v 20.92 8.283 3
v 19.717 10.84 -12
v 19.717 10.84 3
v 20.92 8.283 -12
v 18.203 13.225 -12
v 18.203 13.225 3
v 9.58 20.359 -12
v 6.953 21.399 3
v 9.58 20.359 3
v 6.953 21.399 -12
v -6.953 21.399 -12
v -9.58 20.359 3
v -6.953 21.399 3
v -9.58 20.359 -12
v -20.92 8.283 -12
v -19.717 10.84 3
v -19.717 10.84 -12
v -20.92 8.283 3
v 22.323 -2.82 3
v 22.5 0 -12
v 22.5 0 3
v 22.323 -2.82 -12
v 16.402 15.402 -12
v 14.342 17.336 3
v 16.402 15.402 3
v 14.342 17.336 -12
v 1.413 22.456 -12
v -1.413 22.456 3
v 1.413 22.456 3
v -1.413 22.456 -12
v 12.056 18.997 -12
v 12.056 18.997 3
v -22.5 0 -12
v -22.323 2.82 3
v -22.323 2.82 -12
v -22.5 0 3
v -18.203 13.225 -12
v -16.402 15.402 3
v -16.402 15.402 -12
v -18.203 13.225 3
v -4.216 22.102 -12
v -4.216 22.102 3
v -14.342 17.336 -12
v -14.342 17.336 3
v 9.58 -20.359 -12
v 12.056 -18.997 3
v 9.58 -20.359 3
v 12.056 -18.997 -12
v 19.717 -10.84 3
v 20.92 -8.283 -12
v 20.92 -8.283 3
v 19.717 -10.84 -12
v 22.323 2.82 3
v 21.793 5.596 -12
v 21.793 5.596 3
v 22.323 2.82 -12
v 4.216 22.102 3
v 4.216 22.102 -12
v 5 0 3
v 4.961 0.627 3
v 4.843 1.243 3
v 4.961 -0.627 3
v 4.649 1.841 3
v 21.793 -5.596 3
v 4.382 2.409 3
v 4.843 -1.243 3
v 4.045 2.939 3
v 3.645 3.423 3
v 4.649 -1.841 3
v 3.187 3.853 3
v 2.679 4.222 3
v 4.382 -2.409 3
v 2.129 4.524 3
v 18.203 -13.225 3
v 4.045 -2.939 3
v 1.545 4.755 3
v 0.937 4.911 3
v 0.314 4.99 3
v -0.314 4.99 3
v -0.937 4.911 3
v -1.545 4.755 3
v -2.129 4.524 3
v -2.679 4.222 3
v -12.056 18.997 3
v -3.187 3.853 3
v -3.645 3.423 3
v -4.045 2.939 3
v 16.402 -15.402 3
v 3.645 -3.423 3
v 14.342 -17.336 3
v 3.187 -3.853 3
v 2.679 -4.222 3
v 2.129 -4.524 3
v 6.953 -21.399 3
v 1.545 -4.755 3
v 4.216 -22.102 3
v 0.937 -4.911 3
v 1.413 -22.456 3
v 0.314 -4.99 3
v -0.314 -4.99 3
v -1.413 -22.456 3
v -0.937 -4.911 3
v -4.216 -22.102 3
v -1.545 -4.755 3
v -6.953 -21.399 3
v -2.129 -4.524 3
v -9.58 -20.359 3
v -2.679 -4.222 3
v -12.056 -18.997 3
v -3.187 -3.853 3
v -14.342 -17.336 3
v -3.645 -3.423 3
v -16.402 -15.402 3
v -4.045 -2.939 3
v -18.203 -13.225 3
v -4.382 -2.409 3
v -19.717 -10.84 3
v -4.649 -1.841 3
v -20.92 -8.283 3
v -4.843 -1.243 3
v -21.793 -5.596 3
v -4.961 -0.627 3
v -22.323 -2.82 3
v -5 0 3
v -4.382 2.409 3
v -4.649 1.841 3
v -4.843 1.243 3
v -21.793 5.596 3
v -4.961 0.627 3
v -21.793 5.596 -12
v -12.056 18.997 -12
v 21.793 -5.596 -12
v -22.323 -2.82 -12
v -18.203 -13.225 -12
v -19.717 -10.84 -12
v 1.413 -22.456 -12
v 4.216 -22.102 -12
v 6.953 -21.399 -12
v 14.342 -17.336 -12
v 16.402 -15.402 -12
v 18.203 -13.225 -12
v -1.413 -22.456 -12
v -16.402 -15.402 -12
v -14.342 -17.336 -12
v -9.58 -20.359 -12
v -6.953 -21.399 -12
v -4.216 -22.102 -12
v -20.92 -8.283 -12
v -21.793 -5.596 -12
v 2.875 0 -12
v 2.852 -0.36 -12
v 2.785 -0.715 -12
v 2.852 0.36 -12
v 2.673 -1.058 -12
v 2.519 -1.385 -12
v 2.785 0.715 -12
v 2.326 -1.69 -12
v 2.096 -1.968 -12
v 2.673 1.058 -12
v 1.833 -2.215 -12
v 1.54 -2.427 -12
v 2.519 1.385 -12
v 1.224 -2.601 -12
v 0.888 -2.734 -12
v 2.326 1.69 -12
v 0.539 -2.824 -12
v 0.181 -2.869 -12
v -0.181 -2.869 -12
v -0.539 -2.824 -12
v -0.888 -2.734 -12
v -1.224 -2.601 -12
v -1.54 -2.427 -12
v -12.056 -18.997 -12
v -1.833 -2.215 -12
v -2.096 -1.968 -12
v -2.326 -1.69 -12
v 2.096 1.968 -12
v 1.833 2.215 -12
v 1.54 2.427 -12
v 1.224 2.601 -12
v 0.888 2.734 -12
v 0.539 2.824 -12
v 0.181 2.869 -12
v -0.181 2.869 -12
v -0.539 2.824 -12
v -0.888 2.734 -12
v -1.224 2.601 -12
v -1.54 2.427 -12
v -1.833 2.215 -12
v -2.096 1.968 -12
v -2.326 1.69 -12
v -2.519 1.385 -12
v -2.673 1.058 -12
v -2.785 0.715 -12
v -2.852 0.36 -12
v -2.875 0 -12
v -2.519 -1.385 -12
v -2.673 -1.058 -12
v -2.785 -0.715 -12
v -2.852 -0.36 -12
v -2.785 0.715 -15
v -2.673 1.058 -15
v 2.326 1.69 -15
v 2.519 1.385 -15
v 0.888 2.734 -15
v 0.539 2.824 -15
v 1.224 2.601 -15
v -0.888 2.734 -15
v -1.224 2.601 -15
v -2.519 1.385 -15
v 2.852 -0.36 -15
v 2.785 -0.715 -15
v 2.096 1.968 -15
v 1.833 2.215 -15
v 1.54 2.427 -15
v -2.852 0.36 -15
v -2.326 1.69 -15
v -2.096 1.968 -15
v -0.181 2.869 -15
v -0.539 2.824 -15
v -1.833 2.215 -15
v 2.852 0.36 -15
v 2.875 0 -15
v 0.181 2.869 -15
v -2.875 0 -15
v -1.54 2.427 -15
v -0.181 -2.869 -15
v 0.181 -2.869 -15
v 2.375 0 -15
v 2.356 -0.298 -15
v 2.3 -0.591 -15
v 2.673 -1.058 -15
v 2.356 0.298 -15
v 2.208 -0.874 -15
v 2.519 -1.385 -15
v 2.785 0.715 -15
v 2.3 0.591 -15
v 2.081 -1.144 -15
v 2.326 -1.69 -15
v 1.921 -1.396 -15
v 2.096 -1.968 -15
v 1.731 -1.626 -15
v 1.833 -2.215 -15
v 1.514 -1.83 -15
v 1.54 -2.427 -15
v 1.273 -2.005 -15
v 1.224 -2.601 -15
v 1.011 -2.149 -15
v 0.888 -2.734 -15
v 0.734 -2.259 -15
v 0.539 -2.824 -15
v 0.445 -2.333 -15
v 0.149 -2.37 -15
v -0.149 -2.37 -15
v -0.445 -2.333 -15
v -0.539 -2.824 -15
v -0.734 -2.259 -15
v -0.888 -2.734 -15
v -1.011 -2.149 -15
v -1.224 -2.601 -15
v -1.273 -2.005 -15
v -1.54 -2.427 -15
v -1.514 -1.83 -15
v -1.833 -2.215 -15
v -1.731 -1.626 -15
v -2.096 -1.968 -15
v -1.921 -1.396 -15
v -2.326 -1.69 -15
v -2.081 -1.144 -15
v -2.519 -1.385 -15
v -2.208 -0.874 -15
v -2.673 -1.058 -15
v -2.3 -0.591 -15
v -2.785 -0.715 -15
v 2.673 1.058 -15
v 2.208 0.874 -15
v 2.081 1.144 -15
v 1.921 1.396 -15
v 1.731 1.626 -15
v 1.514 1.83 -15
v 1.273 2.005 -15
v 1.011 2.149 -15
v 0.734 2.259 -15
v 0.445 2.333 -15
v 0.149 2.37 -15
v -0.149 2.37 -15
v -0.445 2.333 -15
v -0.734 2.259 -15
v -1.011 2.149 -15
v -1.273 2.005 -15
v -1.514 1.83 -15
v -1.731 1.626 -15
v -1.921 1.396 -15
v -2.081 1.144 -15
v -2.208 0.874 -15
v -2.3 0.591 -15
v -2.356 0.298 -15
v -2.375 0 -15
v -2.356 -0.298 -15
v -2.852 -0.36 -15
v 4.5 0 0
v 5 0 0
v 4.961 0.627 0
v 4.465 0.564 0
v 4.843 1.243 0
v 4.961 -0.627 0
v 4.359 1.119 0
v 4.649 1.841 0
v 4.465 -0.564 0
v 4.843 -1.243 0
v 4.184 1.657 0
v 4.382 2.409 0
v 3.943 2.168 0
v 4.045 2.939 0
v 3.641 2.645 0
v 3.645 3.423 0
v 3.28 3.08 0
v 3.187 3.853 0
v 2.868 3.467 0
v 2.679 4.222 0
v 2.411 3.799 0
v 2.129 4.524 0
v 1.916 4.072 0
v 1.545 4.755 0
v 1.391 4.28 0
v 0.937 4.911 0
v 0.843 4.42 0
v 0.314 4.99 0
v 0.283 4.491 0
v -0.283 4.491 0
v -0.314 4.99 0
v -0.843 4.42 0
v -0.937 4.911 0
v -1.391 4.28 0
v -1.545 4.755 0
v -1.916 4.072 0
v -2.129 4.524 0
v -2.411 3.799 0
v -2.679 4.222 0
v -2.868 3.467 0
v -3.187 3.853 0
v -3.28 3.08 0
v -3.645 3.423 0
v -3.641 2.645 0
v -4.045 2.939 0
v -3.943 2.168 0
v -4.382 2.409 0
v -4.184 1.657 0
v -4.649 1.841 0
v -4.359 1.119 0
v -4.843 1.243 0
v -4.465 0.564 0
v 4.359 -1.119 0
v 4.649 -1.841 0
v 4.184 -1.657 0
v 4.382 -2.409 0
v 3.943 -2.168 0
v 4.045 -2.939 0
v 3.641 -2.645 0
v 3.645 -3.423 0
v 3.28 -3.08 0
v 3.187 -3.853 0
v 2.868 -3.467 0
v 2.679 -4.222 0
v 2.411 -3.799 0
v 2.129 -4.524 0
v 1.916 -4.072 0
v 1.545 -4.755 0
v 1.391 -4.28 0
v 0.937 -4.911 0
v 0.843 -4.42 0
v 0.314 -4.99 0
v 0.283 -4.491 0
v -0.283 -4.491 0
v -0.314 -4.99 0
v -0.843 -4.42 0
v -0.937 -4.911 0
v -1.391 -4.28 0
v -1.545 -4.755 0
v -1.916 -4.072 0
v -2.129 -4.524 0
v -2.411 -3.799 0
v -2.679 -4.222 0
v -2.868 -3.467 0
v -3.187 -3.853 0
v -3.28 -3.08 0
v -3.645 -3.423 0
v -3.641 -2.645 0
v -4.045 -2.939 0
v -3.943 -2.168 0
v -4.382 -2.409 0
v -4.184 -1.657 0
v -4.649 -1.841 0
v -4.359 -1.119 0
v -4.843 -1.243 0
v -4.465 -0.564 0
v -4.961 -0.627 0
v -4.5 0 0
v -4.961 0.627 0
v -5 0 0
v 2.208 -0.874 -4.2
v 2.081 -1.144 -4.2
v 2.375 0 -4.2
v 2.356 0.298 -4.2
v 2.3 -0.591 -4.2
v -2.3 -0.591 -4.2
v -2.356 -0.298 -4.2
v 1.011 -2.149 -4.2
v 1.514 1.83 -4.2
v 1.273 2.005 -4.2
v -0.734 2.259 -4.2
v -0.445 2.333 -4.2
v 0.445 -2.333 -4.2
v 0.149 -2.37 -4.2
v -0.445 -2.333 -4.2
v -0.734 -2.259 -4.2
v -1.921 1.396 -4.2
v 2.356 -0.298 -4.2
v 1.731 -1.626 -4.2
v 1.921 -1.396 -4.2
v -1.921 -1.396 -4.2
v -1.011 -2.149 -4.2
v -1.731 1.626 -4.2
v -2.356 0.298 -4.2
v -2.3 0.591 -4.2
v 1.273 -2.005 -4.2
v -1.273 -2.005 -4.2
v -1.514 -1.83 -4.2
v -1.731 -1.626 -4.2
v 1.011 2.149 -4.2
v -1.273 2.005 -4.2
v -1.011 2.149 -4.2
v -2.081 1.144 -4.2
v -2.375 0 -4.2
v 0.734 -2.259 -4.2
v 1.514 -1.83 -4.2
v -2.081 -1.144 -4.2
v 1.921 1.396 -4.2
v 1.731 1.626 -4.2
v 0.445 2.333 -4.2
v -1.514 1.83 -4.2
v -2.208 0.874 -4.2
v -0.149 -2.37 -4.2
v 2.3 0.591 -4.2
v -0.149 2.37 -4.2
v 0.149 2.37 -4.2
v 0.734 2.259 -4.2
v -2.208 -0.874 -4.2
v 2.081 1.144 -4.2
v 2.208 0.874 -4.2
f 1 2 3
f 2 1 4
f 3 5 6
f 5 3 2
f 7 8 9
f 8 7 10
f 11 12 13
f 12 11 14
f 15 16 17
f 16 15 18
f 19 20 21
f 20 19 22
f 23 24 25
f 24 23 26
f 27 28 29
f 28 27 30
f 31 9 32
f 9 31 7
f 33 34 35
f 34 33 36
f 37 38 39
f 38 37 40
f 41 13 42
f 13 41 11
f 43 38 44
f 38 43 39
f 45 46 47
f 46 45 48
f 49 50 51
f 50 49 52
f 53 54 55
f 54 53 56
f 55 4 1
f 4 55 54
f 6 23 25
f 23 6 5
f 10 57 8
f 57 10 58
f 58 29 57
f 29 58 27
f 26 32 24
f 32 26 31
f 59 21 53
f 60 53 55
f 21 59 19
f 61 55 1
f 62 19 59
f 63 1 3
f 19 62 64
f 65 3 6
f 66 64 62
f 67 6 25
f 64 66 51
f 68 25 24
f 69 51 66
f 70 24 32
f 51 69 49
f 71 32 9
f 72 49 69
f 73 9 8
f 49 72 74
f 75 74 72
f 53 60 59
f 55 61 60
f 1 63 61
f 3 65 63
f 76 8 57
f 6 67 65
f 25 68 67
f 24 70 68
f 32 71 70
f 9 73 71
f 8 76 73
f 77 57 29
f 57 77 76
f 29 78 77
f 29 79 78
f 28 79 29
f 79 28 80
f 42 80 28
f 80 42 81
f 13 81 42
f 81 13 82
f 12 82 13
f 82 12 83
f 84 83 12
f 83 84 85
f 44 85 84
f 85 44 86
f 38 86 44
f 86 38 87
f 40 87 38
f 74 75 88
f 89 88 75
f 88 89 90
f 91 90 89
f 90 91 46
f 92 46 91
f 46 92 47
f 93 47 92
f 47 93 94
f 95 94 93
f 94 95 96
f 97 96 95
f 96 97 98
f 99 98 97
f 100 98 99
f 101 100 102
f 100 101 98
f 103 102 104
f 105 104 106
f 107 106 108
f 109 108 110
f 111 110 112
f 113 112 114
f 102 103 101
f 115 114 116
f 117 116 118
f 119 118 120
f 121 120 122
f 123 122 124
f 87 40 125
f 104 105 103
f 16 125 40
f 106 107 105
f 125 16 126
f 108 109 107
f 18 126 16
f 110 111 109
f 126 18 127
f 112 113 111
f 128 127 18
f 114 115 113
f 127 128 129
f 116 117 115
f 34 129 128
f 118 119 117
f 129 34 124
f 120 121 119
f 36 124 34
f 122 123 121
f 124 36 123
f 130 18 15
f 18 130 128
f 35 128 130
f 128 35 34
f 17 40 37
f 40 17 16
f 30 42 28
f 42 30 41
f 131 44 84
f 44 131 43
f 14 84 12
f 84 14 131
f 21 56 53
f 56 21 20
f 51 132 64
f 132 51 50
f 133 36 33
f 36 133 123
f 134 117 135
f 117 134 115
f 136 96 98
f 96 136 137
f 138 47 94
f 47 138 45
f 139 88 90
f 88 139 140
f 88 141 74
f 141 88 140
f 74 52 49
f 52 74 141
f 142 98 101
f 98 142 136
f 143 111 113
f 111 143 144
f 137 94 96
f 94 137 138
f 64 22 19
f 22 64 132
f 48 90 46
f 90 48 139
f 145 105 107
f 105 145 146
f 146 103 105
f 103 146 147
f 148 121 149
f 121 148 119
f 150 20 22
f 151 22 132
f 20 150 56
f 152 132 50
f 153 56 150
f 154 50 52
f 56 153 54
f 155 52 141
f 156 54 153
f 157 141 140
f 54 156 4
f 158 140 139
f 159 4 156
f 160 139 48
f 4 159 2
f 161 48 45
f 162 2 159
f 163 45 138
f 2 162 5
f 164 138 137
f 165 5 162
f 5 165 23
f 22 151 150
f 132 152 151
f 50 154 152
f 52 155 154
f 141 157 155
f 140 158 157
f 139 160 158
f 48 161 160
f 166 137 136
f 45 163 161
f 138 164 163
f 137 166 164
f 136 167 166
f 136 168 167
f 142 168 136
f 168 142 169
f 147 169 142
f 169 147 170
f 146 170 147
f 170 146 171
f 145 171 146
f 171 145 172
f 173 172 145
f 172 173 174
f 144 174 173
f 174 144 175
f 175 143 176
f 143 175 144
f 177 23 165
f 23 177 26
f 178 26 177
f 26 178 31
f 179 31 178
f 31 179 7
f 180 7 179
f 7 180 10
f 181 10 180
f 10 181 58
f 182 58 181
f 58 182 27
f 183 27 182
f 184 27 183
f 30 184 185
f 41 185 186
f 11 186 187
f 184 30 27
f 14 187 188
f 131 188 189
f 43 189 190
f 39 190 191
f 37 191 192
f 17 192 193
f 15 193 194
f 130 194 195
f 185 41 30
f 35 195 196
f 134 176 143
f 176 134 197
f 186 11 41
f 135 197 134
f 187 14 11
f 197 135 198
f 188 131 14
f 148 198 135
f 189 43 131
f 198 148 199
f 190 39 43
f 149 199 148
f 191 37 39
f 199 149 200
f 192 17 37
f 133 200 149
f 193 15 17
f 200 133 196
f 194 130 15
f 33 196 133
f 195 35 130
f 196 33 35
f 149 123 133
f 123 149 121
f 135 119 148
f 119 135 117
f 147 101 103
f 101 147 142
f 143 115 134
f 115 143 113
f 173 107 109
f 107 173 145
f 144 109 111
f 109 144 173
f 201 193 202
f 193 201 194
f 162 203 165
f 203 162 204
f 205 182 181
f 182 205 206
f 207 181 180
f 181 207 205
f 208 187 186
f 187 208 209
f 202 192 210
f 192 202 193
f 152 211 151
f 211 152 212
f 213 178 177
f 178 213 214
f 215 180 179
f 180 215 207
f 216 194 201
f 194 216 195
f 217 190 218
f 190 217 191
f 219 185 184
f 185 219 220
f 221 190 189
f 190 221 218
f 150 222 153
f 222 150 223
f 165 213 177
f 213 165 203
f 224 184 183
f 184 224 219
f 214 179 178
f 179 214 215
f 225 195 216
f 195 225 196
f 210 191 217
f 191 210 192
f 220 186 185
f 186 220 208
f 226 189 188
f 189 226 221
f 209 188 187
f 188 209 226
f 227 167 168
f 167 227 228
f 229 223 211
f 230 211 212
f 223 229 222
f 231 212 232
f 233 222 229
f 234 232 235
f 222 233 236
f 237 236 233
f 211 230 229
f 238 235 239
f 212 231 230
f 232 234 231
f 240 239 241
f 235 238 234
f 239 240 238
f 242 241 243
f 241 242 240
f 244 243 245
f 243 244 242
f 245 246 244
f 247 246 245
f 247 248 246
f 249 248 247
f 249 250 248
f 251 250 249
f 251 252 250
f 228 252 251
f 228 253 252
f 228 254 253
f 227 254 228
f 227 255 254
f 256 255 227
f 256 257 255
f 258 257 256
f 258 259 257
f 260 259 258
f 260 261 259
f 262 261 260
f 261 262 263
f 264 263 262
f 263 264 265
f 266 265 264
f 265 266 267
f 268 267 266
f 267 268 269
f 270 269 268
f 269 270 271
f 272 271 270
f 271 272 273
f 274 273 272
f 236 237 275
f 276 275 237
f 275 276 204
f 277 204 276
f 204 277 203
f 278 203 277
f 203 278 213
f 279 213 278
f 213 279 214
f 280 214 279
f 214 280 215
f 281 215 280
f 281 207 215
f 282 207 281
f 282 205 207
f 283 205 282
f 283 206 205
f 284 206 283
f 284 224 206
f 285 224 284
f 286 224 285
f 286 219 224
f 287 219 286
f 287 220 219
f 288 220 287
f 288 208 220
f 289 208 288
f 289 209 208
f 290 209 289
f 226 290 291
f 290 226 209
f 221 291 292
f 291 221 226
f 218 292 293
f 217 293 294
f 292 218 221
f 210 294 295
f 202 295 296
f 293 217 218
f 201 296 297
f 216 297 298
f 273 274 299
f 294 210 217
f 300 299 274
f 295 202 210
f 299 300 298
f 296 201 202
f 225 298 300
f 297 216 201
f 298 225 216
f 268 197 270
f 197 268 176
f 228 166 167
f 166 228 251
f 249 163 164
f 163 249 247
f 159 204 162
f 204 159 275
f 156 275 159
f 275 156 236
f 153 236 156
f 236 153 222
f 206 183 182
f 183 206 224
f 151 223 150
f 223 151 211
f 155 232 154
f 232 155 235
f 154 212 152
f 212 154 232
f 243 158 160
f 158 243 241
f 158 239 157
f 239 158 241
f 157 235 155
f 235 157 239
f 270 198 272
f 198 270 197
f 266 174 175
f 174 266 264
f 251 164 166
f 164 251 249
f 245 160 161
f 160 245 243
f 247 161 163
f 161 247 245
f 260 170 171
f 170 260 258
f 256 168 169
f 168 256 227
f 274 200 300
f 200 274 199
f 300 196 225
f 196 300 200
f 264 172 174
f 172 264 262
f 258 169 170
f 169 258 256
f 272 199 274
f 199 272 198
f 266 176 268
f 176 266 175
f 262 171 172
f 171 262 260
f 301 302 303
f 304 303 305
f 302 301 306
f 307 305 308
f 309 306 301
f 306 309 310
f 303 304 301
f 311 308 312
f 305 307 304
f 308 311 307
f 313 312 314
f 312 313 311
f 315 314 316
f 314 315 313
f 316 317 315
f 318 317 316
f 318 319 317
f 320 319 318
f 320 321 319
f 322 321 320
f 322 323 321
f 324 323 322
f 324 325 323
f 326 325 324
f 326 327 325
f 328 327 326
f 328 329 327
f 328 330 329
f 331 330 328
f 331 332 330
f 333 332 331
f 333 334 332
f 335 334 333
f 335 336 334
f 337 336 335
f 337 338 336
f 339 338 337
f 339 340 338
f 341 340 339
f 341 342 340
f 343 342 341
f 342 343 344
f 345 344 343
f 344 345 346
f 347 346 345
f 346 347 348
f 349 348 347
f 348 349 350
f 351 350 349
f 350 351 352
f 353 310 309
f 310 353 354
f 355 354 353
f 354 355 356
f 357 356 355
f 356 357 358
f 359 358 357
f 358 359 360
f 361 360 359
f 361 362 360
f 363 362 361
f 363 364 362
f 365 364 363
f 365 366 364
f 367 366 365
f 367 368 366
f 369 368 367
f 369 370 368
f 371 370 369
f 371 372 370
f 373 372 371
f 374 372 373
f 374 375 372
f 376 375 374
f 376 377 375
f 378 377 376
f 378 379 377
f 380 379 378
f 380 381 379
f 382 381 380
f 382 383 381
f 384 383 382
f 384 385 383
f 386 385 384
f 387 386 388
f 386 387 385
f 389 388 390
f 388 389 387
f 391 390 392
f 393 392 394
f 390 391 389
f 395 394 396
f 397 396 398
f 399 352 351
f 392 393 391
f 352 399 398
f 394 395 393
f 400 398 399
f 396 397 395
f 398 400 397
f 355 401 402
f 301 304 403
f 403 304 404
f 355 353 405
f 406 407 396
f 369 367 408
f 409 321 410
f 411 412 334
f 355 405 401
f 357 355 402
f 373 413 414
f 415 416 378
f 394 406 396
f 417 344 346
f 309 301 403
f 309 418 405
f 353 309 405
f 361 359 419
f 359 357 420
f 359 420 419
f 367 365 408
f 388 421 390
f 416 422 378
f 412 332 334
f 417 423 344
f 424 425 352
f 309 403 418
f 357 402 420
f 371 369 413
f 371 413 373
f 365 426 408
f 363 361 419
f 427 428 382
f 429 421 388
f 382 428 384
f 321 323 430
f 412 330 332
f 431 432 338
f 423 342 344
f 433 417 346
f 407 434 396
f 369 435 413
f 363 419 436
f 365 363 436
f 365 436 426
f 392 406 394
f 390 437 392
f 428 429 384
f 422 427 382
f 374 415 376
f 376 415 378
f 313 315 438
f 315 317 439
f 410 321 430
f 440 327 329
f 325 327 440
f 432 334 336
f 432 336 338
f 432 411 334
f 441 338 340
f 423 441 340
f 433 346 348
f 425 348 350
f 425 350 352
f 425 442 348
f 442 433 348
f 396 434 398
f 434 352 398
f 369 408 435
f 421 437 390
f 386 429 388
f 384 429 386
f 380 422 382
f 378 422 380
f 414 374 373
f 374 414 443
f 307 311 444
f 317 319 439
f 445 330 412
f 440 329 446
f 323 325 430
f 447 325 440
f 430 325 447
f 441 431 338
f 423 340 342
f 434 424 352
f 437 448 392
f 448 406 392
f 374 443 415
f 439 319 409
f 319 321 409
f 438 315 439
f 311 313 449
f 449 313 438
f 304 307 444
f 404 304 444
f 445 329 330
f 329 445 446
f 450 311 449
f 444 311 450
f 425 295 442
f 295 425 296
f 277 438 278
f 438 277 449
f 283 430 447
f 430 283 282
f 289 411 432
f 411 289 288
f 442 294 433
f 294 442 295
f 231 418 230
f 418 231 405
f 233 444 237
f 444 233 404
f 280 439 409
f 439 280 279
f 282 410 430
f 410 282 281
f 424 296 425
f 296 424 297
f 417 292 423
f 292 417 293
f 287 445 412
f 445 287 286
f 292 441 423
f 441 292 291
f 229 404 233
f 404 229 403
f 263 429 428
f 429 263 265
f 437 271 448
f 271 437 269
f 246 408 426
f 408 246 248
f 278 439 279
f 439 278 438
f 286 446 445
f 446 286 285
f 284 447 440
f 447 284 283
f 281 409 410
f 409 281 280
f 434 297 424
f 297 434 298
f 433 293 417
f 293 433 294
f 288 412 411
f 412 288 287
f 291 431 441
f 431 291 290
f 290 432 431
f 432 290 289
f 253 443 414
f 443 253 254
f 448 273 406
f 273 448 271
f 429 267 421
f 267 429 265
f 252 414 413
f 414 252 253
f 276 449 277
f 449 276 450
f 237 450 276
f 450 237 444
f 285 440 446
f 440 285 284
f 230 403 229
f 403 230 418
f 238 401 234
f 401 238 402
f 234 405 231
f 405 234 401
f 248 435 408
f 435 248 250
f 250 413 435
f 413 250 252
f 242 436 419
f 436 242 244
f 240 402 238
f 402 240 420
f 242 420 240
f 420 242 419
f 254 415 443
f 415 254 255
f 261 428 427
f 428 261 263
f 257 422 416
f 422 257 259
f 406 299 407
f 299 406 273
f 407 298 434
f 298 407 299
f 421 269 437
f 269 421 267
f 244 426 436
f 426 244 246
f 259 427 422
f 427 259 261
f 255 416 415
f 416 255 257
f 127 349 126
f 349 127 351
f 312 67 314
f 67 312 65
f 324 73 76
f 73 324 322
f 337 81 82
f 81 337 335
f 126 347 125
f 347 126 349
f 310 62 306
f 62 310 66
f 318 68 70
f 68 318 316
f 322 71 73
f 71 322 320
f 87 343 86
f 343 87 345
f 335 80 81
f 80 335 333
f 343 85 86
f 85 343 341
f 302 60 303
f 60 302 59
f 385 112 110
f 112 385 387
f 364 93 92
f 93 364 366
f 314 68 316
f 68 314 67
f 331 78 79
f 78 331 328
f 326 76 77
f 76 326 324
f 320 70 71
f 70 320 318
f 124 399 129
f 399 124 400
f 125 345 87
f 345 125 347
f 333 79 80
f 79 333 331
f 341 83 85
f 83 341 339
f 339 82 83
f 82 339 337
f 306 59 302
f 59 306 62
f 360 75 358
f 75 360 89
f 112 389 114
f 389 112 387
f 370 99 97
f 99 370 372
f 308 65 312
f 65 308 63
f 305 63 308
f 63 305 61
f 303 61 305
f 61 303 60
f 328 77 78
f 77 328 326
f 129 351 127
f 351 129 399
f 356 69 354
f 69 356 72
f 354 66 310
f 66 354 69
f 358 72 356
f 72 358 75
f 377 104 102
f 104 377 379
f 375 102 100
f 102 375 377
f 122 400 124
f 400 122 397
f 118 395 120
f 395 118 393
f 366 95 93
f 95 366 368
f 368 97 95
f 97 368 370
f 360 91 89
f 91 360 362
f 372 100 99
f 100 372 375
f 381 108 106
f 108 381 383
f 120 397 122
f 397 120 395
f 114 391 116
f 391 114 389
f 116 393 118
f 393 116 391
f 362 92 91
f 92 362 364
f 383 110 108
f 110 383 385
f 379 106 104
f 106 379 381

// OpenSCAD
$fn = 50;


difference() {
	union() {
		translate(v = [0, 0, -12.0000000000]) {
			cylinder(h = 15, r = 22.5000000000);
		}
		#translate(v = [0, 0, -15.0000000000]) {
			cylinder(h = 15, r = 2.8750000000);
		}
	}
	union() {
		translate(v = [0, 0, 0]) {
			rotate(a = [0, 0, 0]) {
				difference() {
					union() {
						translate(v = [0, 0, -15.0000000000]) {
							cylinder(h = 15, r = 2.2500000000);
						}
						translate(v = [0, 0, -4.2000000000]) {
							cylinder(h = 4.2000000000, r1 = 2.3750000000, r2 = 4.5000000000);
						}
						translate(v = [0, 0, -15.0000000000]) {
							cylinder(h = 15, r = 2.3750000000);
						}
						translate(v = [0, 0, -15.0000000000]) {
							cylinder(h = 15, r = 2.2500000000);
						}
					}
					union();
				}
			}
		}
		#cylinder(h = 3, r = 5.0000000000);
	}
}
